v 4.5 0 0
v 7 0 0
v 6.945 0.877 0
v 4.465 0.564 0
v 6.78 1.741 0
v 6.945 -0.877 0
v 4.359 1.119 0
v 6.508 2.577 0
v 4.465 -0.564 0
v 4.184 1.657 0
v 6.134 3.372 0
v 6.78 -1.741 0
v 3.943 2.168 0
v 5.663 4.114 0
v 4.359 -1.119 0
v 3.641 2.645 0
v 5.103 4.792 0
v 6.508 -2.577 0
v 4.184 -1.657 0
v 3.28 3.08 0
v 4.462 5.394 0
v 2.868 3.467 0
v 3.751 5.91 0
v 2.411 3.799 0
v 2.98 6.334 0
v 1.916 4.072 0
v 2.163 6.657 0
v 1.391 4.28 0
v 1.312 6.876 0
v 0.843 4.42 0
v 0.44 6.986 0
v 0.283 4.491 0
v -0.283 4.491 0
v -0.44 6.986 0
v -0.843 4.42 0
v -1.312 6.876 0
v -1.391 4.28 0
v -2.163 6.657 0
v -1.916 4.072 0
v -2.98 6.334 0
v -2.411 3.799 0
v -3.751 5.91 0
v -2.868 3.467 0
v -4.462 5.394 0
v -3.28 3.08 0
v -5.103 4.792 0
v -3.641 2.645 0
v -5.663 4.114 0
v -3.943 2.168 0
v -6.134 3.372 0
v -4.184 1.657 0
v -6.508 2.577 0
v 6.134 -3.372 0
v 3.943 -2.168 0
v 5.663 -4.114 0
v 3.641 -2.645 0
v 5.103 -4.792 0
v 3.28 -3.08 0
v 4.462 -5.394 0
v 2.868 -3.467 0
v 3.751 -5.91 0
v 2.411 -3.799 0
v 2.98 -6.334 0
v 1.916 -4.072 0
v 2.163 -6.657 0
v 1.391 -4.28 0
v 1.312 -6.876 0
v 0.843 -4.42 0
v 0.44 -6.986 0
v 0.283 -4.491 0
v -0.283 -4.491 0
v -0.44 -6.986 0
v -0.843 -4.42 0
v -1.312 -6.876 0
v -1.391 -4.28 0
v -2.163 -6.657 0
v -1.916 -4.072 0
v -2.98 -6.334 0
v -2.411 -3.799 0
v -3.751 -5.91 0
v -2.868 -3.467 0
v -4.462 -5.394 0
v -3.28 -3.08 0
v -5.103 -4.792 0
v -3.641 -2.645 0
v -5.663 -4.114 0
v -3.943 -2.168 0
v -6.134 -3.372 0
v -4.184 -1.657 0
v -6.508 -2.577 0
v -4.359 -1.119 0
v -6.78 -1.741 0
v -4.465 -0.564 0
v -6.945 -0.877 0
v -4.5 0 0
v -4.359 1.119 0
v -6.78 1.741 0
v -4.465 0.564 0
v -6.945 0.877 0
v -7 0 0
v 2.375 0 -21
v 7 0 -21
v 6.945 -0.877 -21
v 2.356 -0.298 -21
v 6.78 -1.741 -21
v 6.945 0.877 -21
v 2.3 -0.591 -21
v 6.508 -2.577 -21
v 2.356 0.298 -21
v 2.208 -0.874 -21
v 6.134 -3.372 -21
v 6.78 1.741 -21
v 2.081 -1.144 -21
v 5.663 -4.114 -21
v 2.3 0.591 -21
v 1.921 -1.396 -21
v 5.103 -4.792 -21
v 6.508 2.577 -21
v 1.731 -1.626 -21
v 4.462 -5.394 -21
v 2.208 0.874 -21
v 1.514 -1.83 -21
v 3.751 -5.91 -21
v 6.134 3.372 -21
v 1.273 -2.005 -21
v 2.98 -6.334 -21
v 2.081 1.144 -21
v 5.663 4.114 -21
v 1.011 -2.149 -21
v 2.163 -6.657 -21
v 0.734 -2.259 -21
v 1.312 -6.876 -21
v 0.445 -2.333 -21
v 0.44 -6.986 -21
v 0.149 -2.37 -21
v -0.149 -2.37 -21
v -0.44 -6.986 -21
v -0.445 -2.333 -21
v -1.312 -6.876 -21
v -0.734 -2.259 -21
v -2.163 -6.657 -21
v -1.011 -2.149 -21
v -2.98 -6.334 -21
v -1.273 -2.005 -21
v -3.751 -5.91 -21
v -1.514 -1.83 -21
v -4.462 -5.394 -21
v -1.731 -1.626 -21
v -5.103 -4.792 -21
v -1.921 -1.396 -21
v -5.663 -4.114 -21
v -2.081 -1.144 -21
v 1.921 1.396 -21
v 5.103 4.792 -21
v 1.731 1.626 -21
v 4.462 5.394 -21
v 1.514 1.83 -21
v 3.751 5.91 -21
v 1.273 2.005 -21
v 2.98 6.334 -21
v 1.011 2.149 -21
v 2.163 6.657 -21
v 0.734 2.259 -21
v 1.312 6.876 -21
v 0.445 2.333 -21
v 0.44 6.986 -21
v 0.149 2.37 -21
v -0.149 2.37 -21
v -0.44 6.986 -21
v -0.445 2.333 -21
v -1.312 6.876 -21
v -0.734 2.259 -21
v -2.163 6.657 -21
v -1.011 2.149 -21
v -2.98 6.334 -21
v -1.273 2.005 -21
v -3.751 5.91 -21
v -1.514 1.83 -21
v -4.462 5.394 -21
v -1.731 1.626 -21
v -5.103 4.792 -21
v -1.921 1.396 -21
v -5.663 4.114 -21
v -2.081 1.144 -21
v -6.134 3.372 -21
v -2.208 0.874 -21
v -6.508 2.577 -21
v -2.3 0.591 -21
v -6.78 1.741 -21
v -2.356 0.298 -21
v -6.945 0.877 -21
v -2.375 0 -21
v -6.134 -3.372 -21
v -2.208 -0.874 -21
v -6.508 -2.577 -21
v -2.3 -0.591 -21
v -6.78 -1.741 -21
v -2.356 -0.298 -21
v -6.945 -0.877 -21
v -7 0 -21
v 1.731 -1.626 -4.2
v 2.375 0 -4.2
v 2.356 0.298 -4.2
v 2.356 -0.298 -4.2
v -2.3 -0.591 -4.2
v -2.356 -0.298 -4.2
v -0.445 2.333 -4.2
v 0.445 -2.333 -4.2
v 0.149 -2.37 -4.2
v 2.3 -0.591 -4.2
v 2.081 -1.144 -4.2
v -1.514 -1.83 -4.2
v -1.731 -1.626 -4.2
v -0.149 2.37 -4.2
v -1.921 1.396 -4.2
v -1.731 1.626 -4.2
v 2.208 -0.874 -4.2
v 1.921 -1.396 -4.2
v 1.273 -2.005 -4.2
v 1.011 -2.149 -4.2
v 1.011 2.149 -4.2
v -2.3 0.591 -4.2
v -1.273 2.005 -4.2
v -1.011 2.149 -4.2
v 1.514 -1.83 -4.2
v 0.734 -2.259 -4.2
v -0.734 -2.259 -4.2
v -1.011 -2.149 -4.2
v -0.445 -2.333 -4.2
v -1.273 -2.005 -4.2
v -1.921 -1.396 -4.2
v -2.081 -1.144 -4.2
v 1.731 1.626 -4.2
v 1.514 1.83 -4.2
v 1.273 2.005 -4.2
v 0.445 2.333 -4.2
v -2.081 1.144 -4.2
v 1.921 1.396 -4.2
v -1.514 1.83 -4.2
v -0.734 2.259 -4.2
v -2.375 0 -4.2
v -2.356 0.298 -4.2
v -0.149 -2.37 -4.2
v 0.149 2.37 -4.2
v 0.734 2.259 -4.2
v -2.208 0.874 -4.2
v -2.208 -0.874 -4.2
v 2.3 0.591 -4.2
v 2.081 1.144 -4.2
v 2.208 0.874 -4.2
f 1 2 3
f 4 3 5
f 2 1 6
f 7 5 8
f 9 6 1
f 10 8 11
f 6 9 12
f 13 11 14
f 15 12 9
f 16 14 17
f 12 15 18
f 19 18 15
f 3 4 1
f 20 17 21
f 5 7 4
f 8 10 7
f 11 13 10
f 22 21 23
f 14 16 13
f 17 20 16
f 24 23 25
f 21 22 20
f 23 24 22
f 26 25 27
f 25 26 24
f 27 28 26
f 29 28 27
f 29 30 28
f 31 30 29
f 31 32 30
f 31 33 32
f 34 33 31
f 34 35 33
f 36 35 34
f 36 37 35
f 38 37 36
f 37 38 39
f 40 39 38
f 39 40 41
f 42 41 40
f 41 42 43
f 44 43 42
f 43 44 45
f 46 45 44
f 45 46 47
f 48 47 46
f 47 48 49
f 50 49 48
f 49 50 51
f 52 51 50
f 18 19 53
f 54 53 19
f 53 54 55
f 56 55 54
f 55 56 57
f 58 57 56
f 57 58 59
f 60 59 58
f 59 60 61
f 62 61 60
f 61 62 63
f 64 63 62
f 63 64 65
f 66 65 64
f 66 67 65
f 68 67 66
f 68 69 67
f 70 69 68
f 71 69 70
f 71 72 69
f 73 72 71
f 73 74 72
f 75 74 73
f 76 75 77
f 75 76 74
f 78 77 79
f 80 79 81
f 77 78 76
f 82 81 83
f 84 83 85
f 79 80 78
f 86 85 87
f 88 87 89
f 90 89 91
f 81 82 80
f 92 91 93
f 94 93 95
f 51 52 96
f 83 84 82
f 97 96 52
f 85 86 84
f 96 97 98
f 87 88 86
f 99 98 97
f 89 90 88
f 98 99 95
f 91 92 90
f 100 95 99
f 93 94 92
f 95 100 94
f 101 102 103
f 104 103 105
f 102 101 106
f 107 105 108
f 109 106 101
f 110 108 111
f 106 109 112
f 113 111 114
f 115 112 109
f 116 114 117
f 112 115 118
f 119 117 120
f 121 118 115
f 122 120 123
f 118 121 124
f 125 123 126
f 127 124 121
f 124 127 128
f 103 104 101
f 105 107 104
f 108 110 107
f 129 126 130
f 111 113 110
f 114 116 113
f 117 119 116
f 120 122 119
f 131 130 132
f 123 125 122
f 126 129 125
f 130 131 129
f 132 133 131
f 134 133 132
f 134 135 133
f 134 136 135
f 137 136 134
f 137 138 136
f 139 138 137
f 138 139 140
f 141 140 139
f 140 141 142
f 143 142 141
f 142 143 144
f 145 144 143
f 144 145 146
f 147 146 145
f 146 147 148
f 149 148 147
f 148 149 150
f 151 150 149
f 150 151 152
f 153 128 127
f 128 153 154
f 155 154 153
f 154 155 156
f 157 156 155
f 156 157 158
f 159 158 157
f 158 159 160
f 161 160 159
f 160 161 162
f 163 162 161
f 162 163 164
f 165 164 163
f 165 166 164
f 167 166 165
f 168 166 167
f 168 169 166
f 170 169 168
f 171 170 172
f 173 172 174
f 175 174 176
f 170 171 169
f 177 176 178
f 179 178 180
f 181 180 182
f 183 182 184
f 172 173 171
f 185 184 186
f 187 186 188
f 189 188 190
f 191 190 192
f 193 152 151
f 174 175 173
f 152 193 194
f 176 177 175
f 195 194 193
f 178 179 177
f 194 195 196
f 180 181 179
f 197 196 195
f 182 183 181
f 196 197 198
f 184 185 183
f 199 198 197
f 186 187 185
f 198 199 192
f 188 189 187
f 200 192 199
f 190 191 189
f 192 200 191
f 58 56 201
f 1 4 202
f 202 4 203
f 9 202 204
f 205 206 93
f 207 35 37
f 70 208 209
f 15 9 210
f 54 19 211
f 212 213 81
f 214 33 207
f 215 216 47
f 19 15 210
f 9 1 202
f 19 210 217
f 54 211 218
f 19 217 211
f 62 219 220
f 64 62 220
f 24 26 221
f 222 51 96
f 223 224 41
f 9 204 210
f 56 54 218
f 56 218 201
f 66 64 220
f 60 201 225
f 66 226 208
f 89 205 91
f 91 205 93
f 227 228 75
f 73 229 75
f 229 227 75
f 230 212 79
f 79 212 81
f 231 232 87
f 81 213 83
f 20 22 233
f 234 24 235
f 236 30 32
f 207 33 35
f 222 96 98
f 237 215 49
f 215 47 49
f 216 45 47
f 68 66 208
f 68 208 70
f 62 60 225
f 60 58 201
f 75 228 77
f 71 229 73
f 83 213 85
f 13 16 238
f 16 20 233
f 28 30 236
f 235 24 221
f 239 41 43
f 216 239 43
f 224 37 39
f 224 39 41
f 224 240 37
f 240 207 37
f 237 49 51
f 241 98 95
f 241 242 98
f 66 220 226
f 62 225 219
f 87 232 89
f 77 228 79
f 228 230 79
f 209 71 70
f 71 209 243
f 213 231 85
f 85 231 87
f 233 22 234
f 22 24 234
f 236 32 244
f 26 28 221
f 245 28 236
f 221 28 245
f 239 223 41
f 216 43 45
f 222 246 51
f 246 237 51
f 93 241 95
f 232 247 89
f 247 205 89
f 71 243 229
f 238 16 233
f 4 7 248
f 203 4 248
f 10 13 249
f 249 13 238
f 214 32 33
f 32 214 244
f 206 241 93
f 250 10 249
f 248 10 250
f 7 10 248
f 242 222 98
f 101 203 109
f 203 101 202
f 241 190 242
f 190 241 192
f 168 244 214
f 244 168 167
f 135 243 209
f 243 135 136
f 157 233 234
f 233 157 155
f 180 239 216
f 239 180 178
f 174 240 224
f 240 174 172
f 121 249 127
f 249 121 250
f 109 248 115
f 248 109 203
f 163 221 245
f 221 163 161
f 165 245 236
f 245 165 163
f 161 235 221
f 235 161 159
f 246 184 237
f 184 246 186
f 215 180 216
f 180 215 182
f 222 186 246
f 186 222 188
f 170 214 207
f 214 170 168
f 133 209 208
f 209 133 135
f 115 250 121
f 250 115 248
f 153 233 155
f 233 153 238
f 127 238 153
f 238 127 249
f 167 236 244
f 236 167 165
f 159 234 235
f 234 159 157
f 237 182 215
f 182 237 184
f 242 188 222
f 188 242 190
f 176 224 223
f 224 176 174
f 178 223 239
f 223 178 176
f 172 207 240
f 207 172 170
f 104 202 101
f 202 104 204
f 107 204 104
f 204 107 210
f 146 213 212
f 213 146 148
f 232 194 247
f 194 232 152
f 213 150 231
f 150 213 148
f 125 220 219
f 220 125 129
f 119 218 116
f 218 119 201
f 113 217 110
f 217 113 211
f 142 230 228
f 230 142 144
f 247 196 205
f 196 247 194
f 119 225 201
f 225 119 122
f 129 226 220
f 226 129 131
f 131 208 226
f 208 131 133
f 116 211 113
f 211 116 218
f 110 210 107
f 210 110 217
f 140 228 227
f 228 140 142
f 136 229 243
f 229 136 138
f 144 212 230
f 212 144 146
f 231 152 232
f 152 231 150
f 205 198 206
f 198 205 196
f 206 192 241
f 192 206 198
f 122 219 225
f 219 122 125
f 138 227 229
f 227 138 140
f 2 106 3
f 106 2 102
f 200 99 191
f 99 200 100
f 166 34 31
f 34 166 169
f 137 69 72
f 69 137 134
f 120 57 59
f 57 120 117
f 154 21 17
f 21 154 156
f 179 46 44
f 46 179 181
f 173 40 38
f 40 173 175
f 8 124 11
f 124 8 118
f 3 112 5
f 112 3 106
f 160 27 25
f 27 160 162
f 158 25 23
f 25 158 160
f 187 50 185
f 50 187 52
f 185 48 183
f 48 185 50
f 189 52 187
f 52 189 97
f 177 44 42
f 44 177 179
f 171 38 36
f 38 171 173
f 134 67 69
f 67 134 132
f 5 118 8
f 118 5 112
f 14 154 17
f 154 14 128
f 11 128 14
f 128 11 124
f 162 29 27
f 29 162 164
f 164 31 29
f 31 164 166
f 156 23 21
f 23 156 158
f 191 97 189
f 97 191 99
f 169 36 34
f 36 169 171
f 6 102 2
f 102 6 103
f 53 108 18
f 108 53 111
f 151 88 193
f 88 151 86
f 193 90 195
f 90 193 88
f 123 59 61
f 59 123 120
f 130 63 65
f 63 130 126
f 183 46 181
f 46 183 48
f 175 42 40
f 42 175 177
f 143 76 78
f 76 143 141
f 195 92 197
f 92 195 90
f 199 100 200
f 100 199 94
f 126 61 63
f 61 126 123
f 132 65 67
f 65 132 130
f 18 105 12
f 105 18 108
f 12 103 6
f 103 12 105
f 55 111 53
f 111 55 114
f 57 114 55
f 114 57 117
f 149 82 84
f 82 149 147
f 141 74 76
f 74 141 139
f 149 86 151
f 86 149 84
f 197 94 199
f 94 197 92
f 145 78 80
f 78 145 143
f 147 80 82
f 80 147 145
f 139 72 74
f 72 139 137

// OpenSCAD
$fn = 50;


difference() {
	union() {
		translate(v = [0, 0, -21.0000000000]) {
			cylinder(h = 21, r = 7.0000000000);
		}
		cylinder(h = 0, r = 13.0000000000);
	}
	union() {
		translate(v = [0, 0, 0]) {
			rotate(a = [0, 0, 0]) {
				difference() {
					union() {
						#translate(v = [0, 0, -21.0000000000]) {
							cylinder(h = 21, r = 2.2500000000);
						}
						#translate(v = [0, 0, -4.2000000000]) {
							cylinder(h = 4.2000000000, r = 7.0000000000, r1 = 2.3750000000, r2 = 4.5000000000);
						}
						#translate(v = [0, 0, -21.0000000000]) {
							cylinder(h = 21, r = 2.3750000000);
						}
						#translate(v = [0, 0, -21.0000000000]) {
							cylinder(h = 21, r = 2.2500000000);
						}
					}
					union();
				}
			}
		}
	}
}
